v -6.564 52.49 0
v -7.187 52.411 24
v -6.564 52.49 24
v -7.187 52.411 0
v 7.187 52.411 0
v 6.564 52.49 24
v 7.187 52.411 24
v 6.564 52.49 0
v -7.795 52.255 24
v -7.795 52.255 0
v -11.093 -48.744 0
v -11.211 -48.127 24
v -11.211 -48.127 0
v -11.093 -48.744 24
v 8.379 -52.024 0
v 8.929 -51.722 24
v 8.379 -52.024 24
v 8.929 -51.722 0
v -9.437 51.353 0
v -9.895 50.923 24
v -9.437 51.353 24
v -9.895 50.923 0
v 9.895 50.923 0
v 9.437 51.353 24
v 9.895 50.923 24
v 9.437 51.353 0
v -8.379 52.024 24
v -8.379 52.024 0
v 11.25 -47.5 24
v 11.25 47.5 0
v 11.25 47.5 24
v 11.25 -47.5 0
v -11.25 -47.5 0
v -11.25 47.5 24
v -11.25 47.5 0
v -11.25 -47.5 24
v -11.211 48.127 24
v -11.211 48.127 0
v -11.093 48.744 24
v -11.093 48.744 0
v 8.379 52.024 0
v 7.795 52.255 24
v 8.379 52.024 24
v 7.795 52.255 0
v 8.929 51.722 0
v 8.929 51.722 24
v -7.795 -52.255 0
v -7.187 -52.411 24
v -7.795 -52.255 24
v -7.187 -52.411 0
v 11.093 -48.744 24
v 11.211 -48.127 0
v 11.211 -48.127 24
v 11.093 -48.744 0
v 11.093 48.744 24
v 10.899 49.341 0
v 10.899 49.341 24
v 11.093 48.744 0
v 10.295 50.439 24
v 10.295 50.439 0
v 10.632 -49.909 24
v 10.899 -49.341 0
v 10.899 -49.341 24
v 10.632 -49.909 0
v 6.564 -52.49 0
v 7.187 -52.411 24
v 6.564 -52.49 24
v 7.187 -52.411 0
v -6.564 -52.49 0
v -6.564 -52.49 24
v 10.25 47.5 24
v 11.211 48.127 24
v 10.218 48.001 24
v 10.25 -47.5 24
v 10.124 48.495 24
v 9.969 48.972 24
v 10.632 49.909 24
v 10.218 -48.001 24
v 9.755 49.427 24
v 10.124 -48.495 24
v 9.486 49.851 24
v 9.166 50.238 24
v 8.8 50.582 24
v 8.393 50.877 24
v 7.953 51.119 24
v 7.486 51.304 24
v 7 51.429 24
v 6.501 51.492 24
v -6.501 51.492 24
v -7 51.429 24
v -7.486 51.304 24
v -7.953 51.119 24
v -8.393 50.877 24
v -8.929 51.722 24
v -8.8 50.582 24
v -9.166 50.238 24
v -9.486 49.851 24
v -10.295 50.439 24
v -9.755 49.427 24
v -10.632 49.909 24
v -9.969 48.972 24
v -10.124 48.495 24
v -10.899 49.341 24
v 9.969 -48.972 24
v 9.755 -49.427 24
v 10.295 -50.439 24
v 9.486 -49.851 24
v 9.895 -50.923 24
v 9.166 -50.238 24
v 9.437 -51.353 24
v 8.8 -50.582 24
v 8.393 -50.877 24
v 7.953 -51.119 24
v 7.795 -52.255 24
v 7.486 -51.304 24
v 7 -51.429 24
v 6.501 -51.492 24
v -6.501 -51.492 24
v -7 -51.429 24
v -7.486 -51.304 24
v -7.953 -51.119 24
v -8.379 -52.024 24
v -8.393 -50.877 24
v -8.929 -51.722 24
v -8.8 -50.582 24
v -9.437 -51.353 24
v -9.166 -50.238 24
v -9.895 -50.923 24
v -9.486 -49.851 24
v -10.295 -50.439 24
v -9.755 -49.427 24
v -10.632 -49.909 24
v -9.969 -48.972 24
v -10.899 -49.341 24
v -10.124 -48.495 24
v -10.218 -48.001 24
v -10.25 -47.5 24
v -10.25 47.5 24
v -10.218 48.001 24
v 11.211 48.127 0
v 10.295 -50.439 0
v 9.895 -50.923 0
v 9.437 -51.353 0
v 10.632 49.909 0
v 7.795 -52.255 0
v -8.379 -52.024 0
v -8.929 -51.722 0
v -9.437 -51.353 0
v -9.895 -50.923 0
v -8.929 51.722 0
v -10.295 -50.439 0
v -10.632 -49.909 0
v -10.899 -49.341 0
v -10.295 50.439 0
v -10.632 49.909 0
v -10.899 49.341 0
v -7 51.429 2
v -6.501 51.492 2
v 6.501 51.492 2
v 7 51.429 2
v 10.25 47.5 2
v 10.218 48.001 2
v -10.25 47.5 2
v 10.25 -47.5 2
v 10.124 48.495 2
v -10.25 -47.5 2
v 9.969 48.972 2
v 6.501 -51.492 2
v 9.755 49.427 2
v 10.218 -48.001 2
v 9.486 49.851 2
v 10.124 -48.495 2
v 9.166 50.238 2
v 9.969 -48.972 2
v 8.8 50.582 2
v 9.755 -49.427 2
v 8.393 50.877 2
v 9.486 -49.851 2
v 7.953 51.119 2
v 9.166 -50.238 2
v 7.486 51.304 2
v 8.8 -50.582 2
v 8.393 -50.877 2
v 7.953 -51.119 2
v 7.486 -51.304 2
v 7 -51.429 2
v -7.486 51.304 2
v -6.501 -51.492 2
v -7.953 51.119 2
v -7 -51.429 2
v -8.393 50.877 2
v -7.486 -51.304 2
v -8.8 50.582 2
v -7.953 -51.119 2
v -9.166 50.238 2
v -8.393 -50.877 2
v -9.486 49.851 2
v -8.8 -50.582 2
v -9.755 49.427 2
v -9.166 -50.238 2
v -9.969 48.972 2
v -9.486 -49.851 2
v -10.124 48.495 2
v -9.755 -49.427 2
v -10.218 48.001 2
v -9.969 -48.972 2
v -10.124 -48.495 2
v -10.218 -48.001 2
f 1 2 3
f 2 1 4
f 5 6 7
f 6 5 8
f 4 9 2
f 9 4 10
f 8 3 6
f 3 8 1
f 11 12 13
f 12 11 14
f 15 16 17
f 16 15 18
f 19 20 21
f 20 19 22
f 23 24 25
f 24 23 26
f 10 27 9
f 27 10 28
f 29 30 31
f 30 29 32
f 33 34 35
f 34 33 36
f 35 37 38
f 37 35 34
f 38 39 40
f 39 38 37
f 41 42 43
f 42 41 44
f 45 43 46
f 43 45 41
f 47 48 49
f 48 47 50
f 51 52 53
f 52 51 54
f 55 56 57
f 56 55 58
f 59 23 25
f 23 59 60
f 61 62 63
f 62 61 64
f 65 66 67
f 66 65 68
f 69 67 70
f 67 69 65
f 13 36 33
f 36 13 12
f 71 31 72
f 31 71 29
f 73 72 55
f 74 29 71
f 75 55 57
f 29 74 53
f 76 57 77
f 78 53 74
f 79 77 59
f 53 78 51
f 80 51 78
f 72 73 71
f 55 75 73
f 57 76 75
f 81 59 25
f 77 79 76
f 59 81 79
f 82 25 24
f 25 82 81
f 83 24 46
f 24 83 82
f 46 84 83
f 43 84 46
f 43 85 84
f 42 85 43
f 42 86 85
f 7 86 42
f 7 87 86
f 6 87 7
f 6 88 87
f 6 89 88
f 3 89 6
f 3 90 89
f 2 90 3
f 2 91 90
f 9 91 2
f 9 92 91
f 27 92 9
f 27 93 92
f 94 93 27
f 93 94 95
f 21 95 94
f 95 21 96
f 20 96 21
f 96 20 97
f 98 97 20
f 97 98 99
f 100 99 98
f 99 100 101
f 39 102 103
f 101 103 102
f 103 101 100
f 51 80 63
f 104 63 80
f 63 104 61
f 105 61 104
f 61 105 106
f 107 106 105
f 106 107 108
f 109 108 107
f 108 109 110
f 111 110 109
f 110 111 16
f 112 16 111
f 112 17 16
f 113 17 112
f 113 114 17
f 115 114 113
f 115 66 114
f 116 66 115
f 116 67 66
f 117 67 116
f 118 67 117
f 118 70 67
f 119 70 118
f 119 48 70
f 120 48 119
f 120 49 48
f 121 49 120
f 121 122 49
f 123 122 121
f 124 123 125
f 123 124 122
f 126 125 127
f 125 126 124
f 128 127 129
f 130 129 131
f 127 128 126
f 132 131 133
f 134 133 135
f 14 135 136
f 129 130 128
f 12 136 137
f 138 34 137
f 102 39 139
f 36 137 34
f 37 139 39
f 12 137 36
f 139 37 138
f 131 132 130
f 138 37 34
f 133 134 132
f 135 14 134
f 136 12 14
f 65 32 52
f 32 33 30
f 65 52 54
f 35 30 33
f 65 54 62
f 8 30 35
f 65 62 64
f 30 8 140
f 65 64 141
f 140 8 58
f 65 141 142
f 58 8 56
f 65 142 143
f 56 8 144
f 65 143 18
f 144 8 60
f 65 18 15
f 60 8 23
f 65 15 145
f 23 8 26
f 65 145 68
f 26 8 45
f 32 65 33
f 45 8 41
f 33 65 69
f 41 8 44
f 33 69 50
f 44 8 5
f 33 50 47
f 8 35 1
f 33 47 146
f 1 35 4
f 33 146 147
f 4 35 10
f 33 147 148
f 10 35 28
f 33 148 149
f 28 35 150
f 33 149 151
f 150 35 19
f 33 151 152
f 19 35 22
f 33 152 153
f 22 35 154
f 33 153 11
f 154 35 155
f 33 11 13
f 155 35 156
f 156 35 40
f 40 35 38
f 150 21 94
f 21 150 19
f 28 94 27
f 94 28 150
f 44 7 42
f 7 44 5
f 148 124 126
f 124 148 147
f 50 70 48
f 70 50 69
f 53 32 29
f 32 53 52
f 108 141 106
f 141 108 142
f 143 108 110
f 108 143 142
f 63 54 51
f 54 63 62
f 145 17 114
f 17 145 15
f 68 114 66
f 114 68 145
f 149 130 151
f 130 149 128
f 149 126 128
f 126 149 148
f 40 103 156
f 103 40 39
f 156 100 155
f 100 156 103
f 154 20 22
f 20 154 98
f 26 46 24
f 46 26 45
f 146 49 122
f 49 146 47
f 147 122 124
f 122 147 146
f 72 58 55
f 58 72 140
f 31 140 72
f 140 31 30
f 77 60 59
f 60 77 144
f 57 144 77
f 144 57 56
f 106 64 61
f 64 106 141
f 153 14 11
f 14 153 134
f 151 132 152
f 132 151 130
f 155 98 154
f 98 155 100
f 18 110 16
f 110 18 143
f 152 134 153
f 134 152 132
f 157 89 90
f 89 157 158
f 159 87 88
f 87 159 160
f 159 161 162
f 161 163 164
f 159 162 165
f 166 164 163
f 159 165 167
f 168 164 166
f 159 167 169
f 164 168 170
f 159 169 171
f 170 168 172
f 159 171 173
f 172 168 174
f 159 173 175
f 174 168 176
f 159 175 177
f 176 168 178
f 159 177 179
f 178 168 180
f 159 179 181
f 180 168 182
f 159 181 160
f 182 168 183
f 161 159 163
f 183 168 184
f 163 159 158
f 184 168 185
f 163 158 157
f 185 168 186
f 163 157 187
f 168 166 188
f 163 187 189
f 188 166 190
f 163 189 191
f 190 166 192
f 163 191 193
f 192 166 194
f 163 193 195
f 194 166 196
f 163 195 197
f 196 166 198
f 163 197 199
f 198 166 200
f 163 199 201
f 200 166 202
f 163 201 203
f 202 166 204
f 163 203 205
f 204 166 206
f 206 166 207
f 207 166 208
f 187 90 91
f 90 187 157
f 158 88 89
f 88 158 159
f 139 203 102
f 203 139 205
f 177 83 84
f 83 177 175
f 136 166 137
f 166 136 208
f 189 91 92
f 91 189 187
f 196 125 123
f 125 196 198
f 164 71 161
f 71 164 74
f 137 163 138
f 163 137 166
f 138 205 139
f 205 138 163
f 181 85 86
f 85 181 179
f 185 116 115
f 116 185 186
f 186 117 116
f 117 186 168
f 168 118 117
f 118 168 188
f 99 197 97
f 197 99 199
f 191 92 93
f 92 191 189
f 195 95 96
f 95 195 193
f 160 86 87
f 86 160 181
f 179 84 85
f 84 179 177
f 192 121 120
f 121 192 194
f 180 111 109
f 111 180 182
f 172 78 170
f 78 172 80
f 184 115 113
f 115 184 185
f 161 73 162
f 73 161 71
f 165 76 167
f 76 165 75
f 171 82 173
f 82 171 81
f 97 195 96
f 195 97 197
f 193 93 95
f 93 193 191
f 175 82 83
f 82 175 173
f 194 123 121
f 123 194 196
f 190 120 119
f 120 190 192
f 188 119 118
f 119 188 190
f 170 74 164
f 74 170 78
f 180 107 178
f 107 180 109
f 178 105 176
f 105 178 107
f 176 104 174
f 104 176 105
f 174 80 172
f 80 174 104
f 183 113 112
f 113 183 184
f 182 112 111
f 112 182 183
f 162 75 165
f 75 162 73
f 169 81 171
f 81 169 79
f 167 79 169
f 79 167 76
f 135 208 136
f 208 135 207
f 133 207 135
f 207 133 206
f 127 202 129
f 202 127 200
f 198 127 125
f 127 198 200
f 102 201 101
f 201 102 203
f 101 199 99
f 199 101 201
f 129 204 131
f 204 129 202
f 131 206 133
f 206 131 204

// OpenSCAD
$fn = 50;


difference() {
	union() {
		hull() {
			translate(v = [-6.2500000000, 47.5000000000, 0]) {
				cylinder(h = 24, r = 5);
			}
			translate(v = [6.2500000000, 47.5000000000, 0]) {
				cylinder(h = 24, r = 5);
			}
			translate(v = [-6.2500000000, -47.5000000000, 0]) {
				cylinder(h = 24, r = 5);
			}
			translate(v = [6.2500000000, -47.5000000000, 0]) {
				cylinder(h = 24, r = 5);
			}
		}
	}
	union() {
		translate(v = [0, 0, 2]) {
			hull() {
				translate(v = [-6.2500000000, 47.5000000000, 0]) {
					cylinder(h = 22, r = 4);
				}
				translate(v = [6.2500000000, 47.5000000000, 0]) {
					cylinder(h = 22, r = 4);
				}
				translate(v = [-6.2500000000, -47.5000000000, 0]) {
					cylinder(h = 22, r = 4);
				}
				translate(v = [6.2500000000, -47.5000000000, 0]) {
					cylinder(h = 22, r = 4);
				}
			}
		}
	}
}
